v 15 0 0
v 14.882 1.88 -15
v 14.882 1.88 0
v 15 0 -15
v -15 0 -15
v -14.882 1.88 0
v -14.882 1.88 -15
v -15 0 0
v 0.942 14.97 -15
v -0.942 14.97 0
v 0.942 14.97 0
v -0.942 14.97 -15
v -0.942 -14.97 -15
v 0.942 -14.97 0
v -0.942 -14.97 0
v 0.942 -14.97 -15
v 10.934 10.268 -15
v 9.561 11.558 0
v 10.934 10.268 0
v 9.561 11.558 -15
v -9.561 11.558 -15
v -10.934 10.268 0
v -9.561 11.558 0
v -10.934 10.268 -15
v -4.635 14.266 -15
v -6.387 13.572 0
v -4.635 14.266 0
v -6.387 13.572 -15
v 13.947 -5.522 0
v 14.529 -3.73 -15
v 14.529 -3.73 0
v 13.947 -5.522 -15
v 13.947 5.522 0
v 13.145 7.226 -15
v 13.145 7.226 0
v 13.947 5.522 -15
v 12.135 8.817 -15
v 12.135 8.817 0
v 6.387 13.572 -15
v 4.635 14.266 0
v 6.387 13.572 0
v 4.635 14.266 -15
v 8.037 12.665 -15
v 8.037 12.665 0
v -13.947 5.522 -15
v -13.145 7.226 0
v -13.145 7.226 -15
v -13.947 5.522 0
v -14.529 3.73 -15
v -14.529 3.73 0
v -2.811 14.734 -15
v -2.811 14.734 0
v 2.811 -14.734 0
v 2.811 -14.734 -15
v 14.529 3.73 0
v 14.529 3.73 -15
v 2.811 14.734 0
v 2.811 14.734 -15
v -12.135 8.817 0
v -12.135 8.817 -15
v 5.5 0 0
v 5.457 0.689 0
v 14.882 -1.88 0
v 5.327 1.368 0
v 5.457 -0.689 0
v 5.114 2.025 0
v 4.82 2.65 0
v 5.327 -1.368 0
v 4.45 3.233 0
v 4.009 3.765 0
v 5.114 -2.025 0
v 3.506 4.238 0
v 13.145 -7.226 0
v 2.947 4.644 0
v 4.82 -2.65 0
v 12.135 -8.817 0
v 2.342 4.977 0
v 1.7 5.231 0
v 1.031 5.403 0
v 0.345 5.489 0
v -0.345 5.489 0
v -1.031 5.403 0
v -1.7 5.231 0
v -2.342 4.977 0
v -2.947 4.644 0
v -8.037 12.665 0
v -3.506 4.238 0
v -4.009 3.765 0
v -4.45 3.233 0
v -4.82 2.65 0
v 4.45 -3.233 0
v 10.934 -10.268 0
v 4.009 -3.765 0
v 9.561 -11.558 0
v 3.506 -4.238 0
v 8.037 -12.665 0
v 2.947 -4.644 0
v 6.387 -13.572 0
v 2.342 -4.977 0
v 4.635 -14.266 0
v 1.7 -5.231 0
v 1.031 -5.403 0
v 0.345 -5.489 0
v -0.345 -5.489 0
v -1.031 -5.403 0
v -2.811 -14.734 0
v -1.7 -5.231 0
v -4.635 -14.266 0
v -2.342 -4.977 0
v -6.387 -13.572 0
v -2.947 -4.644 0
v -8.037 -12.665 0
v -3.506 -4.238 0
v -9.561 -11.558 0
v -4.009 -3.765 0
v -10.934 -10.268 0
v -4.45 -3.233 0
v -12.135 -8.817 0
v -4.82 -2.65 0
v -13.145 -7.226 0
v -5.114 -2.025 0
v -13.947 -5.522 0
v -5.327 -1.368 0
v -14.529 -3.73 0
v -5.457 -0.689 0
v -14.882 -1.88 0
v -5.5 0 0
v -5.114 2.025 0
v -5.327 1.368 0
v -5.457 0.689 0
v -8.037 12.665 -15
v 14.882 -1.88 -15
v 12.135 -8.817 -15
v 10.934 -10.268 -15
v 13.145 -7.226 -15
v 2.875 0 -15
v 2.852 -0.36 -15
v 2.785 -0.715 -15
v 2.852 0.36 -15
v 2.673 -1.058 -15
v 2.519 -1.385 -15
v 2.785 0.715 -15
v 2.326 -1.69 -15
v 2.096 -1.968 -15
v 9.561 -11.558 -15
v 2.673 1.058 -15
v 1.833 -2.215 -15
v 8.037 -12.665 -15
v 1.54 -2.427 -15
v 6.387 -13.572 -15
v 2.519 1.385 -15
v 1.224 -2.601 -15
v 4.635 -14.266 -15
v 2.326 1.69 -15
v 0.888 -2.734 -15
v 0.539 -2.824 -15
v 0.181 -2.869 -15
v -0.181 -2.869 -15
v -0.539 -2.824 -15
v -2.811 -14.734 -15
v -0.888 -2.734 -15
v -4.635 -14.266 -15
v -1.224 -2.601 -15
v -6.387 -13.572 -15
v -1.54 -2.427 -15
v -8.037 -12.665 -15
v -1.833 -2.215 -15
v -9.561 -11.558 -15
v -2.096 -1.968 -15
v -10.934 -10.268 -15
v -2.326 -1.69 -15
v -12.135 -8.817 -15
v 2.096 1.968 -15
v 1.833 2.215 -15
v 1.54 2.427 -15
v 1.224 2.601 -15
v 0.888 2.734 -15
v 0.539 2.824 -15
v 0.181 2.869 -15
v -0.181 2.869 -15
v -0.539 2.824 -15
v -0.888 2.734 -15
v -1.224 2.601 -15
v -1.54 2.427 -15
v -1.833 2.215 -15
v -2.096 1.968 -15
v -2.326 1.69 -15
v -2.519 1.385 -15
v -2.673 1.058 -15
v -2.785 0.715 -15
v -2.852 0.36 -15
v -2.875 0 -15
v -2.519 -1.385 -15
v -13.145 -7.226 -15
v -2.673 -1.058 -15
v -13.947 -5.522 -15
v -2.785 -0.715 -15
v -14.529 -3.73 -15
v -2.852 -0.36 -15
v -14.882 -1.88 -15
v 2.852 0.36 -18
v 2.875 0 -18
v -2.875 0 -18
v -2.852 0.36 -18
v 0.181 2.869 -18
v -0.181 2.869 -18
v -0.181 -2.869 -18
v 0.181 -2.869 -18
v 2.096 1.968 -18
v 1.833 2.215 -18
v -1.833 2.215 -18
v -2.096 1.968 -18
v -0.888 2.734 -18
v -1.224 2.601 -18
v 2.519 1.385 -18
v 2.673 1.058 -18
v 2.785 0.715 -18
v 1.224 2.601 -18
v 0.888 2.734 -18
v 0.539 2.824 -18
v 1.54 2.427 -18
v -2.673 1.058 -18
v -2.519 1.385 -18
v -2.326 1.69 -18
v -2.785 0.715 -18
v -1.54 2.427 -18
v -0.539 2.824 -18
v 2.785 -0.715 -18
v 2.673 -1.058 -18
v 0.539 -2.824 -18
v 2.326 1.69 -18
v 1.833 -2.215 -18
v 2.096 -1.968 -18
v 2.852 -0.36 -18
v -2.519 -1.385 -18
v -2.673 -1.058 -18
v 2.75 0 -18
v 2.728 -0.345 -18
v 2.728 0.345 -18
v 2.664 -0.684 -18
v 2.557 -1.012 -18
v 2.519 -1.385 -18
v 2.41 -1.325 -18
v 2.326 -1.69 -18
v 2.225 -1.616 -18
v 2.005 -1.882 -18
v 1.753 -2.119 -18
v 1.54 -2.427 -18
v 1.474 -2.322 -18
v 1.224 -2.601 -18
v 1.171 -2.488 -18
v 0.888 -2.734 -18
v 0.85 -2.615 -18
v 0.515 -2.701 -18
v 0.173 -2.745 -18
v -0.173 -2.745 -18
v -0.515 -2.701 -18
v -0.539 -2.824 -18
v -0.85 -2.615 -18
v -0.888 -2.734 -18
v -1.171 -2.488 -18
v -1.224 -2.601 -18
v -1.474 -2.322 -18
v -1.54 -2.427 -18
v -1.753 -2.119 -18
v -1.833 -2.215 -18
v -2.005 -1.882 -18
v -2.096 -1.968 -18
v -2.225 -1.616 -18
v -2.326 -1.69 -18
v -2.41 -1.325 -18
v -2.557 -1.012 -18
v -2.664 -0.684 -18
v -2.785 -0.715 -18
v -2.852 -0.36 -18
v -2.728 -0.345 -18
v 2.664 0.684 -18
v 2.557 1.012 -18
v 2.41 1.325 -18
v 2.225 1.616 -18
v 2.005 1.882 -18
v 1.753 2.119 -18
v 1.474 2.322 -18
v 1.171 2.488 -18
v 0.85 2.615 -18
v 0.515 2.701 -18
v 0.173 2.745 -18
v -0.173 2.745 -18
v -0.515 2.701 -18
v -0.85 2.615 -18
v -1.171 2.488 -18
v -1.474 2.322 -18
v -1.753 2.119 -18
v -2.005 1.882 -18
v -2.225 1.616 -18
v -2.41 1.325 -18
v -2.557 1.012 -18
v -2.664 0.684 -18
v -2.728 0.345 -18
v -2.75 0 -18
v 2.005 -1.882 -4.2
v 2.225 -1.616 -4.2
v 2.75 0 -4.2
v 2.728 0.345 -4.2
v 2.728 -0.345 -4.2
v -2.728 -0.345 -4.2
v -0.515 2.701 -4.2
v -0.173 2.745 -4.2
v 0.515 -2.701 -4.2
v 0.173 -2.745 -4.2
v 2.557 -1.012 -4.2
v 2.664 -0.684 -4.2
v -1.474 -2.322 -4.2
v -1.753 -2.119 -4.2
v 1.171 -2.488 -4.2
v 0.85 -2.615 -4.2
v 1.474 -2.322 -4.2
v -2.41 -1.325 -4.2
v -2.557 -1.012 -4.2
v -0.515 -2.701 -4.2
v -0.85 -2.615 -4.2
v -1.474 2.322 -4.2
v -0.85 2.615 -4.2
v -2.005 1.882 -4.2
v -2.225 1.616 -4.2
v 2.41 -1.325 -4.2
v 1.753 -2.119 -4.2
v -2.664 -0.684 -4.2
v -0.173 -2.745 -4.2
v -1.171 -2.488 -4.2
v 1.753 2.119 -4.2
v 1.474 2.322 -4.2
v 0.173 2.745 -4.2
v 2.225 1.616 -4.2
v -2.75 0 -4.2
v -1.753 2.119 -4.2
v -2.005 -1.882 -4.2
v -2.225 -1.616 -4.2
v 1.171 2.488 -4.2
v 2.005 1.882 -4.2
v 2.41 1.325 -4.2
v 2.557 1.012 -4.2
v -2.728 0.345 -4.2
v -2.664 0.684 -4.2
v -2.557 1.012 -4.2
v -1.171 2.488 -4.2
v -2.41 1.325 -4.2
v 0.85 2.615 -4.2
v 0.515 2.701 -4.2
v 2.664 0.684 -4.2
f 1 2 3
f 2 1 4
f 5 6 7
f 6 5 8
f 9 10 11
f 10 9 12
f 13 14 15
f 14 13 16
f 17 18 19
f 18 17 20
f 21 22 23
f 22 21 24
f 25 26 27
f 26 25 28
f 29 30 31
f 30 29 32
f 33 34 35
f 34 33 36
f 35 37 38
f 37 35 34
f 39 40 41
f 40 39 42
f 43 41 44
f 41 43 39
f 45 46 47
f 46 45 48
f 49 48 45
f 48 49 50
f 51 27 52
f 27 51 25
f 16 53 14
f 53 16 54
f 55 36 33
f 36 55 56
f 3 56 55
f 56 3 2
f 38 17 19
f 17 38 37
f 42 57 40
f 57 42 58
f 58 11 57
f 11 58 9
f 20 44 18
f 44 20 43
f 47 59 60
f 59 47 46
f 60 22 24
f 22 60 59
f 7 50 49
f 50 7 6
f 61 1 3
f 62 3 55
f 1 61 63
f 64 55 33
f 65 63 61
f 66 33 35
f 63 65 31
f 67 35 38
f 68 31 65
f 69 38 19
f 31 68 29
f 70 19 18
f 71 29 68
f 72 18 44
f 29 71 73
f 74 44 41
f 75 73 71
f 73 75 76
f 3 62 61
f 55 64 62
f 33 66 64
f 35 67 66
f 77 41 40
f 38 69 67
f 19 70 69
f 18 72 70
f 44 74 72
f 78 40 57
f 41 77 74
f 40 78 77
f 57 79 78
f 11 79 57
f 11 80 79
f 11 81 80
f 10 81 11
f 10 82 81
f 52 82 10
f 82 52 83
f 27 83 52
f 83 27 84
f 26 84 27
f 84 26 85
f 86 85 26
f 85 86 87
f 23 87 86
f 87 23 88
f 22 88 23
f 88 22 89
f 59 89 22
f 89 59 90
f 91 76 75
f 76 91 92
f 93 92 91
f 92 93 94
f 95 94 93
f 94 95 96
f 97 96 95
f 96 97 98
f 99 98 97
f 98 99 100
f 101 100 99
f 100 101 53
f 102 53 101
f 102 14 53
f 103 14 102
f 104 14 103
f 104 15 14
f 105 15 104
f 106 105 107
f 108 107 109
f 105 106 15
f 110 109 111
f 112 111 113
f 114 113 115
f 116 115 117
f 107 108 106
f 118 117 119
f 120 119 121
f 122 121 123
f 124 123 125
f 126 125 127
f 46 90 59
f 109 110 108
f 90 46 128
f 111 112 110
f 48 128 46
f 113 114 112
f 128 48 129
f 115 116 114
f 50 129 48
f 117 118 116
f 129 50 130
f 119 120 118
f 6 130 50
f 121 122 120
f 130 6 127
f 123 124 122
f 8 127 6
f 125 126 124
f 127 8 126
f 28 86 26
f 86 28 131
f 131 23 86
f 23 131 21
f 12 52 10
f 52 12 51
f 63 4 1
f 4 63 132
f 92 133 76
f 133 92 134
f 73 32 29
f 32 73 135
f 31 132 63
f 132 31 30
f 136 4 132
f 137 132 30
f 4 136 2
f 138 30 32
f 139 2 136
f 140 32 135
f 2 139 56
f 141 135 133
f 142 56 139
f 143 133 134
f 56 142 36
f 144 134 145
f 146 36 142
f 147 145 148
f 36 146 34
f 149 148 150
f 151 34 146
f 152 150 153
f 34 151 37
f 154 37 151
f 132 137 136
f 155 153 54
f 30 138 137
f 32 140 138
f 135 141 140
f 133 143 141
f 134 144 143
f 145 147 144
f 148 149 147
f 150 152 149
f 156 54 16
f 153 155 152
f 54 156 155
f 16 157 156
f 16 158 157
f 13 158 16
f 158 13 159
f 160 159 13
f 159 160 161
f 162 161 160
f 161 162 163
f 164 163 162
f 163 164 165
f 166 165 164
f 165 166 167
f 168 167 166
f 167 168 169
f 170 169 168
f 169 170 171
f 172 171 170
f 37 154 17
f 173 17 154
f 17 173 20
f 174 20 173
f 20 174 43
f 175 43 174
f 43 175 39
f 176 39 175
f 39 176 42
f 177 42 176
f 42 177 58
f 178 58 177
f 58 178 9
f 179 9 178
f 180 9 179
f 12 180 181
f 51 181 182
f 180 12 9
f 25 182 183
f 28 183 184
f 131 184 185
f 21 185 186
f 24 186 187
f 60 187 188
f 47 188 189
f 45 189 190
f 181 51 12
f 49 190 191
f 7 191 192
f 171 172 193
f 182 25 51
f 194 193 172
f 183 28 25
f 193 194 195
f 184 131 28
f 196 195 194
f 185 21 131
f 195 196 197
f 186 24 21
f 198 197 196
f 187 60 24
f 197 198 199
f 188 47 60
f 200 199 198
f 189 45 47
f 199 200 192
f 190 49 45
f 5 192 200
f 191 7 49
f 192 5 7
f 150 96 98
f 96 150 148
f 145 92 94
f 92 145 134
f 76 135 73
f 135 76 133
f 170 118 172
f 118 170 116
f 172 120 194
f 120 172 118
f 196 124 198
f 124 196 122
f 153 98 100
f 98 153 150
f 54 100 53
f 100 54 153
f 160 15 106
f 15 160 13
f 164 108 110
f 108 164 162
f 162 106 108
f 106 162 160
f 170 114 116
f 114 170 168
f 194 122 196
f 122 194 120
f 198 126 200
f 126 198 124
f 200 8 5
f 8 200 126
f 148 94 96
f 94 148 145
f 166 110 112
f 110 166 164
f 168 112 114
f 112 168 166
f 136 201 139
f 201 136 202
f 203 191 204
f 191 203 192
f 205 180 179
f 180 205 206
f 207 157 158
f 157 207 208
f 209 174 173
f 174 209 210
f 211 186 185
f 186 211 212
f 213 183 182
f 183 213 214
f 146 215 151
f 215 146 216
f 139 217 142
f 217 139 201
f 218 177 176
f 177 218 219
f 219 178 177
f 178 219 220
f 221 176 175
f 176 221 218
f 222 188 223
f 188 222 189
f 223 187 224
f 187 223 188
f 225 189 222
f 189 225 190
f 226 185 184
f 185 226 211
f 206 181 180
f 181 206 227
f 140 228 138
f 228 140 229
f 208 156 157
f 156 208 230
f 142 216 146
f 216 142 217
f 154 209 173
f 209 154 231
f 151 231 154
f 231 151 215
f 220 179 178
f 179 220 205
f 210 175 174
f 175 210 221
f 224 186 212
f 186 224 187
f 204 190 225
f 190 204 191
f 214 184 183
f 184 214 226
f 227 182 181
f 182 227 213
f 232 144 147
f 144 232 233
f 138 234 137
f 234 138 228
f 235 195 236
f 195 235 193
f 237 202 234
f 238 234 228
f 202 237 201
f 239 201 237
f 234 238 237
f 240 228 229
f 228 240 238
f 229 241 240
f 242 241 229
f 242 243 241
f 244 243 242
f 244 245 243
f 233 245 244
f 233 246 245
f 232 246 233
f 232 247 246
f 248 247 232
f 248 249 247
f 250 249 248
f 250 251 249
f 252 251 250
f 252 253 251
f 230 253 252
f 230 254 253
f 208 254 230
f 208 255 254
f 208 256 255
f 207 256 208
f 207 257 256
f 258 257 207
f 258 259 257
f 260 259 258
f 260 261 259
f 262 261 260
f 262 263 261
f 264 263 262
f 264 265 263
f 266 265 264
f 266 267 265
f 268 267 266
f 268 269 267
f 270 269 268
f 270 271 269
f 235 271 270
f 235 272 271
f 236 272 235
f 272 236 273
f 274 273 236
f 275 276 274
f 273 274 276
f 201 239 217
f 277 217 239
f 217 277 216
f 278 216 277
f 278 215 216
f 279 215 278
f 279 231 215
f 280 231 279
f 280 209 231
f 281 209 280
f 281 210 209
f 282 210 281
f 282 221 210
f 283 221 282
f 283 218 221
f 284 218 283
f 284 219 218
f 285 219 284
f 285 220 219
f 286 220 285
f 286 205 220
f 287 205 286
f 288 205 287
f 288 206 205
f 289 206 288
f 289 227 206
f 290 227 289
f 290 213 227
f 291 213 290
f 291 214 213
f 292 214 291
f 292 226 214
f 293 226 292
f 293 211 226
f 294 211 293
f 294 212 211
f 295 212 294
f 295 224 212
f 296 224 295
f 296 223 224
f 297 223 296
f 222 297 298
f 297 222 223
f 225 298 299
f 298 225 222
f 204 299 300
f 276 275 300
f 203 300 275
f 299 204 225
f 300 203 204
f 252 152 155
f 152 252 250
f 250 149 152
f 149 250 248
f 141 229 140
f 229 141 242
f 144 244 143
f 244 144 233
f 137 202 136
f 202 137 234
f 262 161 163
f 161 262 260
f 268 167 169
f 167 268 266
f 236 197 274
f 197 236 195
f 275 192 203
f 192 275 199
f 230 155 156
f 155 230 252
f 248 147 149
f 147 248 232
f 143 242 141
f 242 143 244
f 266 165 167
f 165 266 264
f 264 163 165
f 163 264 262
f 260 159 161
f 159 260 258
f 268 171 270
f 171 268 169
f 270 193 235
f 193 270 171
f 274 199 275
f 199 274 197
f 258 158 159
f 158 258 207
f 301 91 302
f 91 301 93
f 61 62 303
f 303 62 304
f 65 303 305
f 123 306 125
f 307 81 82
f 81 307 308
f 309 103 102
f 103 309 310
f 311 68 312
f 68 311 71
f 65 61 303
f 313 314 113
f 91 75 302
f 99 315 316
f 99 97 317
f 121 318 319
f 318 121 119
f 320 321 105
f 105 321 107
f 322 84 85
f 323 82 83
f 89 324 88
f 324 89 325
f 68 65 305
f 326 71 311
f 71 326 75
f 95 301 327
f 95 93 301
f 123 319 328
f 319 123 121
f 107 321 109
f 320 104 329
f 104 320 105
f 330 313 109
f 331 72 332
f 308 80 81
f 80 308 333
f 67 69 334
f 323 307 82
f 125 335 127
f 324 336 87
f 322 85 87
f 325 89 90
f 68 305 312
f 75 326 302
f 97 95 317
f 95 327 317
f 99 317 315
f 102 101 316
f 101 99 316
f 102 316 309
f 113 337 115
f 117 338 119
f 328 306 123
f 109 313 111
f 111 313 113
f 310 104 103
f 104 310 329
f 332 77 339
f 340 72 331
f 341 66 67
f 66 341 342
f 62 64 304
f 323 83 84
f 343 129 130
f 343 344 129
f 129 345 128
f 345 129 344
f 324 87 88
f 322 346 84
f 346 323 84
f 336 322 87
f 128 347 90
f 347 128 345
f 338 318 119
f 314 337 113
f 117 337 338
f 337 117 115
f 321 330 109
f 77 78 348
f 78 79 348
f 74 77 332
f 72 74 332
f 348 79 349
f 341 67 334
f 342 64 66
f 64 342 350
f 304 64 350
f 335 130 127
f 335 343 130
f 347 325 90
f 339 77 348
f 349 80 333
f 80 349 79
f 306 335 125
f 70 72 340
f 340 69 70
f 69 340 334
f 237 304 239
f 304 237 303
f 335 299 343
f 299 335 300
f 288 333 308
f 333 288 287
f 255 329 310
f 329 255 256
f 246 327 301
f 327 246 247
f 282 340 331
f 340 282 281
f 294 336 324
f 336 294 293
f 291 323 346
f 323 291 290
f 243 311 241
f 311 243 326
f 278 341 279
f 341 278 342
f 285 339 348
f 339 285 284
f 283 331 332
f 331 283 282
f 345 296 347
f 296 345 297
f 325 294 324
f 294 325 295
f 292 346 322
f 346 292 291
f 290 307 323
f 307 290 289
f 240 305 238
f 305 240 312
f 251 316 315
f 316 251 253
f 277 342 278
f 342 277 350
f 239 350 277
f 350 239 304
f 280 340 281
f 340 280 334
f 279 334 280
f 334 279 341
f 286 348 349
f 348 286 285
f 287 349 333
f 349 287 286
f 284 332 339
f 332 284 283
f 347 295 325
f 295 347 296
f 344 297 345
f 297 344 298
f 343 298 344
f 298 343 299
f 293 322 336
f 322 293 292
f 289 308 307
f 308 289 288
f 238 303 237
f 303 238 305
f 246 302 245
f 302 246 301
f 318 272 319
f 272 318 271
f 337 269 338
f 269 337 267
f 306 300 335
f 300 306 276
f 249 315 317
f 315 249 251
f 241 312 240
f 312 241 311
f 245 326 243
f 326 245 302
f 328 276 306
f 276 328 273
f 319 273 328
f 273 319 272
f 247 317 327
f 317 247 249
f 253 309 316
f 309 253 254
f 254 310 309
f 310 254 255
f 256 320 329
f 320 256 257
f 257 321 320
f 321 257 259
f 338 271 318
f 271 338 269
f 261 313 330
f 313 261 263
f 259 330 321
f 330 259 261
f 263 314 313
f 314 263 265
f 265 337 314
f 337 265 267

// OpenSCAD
$fn = 50;


difference() {
	union() {
		translate(v = [0, 0, -15.0000000000]) {
			cylinder(h = 15, r = 15.0000000000);
		}
		#translate(v = [0, 0, -18.0000000000]) {
			cylinder(h = 18, r = 2.8750000000);
		}
	}
	union() {
		translate(v = [0, 0, 0]) {
			rotate(a = [0, 0, 0]) {
				difference() {
					union() {
						translate(v = [0, 0, -18.0000000000]) {
							cylinder(h = 18, r = 2.2500000000);
						}
						translate(v = [0, 0, -4.2000000000]) {
							cylinder(h = 4.2000000000, r1 = 2.7500000000, r2 = 5.5000000000);
						}
						translate(v = [0, 0, -18.0000000000]) {
							cylinder(h = 18, r = 2.7500000000);
						}
						translate(v = [0, 0, -18.0000000000]) {
							cylinder(h = 18, r = 2.2500000000);
						}
					}
					union();
				}
			}
		}
	}
}
